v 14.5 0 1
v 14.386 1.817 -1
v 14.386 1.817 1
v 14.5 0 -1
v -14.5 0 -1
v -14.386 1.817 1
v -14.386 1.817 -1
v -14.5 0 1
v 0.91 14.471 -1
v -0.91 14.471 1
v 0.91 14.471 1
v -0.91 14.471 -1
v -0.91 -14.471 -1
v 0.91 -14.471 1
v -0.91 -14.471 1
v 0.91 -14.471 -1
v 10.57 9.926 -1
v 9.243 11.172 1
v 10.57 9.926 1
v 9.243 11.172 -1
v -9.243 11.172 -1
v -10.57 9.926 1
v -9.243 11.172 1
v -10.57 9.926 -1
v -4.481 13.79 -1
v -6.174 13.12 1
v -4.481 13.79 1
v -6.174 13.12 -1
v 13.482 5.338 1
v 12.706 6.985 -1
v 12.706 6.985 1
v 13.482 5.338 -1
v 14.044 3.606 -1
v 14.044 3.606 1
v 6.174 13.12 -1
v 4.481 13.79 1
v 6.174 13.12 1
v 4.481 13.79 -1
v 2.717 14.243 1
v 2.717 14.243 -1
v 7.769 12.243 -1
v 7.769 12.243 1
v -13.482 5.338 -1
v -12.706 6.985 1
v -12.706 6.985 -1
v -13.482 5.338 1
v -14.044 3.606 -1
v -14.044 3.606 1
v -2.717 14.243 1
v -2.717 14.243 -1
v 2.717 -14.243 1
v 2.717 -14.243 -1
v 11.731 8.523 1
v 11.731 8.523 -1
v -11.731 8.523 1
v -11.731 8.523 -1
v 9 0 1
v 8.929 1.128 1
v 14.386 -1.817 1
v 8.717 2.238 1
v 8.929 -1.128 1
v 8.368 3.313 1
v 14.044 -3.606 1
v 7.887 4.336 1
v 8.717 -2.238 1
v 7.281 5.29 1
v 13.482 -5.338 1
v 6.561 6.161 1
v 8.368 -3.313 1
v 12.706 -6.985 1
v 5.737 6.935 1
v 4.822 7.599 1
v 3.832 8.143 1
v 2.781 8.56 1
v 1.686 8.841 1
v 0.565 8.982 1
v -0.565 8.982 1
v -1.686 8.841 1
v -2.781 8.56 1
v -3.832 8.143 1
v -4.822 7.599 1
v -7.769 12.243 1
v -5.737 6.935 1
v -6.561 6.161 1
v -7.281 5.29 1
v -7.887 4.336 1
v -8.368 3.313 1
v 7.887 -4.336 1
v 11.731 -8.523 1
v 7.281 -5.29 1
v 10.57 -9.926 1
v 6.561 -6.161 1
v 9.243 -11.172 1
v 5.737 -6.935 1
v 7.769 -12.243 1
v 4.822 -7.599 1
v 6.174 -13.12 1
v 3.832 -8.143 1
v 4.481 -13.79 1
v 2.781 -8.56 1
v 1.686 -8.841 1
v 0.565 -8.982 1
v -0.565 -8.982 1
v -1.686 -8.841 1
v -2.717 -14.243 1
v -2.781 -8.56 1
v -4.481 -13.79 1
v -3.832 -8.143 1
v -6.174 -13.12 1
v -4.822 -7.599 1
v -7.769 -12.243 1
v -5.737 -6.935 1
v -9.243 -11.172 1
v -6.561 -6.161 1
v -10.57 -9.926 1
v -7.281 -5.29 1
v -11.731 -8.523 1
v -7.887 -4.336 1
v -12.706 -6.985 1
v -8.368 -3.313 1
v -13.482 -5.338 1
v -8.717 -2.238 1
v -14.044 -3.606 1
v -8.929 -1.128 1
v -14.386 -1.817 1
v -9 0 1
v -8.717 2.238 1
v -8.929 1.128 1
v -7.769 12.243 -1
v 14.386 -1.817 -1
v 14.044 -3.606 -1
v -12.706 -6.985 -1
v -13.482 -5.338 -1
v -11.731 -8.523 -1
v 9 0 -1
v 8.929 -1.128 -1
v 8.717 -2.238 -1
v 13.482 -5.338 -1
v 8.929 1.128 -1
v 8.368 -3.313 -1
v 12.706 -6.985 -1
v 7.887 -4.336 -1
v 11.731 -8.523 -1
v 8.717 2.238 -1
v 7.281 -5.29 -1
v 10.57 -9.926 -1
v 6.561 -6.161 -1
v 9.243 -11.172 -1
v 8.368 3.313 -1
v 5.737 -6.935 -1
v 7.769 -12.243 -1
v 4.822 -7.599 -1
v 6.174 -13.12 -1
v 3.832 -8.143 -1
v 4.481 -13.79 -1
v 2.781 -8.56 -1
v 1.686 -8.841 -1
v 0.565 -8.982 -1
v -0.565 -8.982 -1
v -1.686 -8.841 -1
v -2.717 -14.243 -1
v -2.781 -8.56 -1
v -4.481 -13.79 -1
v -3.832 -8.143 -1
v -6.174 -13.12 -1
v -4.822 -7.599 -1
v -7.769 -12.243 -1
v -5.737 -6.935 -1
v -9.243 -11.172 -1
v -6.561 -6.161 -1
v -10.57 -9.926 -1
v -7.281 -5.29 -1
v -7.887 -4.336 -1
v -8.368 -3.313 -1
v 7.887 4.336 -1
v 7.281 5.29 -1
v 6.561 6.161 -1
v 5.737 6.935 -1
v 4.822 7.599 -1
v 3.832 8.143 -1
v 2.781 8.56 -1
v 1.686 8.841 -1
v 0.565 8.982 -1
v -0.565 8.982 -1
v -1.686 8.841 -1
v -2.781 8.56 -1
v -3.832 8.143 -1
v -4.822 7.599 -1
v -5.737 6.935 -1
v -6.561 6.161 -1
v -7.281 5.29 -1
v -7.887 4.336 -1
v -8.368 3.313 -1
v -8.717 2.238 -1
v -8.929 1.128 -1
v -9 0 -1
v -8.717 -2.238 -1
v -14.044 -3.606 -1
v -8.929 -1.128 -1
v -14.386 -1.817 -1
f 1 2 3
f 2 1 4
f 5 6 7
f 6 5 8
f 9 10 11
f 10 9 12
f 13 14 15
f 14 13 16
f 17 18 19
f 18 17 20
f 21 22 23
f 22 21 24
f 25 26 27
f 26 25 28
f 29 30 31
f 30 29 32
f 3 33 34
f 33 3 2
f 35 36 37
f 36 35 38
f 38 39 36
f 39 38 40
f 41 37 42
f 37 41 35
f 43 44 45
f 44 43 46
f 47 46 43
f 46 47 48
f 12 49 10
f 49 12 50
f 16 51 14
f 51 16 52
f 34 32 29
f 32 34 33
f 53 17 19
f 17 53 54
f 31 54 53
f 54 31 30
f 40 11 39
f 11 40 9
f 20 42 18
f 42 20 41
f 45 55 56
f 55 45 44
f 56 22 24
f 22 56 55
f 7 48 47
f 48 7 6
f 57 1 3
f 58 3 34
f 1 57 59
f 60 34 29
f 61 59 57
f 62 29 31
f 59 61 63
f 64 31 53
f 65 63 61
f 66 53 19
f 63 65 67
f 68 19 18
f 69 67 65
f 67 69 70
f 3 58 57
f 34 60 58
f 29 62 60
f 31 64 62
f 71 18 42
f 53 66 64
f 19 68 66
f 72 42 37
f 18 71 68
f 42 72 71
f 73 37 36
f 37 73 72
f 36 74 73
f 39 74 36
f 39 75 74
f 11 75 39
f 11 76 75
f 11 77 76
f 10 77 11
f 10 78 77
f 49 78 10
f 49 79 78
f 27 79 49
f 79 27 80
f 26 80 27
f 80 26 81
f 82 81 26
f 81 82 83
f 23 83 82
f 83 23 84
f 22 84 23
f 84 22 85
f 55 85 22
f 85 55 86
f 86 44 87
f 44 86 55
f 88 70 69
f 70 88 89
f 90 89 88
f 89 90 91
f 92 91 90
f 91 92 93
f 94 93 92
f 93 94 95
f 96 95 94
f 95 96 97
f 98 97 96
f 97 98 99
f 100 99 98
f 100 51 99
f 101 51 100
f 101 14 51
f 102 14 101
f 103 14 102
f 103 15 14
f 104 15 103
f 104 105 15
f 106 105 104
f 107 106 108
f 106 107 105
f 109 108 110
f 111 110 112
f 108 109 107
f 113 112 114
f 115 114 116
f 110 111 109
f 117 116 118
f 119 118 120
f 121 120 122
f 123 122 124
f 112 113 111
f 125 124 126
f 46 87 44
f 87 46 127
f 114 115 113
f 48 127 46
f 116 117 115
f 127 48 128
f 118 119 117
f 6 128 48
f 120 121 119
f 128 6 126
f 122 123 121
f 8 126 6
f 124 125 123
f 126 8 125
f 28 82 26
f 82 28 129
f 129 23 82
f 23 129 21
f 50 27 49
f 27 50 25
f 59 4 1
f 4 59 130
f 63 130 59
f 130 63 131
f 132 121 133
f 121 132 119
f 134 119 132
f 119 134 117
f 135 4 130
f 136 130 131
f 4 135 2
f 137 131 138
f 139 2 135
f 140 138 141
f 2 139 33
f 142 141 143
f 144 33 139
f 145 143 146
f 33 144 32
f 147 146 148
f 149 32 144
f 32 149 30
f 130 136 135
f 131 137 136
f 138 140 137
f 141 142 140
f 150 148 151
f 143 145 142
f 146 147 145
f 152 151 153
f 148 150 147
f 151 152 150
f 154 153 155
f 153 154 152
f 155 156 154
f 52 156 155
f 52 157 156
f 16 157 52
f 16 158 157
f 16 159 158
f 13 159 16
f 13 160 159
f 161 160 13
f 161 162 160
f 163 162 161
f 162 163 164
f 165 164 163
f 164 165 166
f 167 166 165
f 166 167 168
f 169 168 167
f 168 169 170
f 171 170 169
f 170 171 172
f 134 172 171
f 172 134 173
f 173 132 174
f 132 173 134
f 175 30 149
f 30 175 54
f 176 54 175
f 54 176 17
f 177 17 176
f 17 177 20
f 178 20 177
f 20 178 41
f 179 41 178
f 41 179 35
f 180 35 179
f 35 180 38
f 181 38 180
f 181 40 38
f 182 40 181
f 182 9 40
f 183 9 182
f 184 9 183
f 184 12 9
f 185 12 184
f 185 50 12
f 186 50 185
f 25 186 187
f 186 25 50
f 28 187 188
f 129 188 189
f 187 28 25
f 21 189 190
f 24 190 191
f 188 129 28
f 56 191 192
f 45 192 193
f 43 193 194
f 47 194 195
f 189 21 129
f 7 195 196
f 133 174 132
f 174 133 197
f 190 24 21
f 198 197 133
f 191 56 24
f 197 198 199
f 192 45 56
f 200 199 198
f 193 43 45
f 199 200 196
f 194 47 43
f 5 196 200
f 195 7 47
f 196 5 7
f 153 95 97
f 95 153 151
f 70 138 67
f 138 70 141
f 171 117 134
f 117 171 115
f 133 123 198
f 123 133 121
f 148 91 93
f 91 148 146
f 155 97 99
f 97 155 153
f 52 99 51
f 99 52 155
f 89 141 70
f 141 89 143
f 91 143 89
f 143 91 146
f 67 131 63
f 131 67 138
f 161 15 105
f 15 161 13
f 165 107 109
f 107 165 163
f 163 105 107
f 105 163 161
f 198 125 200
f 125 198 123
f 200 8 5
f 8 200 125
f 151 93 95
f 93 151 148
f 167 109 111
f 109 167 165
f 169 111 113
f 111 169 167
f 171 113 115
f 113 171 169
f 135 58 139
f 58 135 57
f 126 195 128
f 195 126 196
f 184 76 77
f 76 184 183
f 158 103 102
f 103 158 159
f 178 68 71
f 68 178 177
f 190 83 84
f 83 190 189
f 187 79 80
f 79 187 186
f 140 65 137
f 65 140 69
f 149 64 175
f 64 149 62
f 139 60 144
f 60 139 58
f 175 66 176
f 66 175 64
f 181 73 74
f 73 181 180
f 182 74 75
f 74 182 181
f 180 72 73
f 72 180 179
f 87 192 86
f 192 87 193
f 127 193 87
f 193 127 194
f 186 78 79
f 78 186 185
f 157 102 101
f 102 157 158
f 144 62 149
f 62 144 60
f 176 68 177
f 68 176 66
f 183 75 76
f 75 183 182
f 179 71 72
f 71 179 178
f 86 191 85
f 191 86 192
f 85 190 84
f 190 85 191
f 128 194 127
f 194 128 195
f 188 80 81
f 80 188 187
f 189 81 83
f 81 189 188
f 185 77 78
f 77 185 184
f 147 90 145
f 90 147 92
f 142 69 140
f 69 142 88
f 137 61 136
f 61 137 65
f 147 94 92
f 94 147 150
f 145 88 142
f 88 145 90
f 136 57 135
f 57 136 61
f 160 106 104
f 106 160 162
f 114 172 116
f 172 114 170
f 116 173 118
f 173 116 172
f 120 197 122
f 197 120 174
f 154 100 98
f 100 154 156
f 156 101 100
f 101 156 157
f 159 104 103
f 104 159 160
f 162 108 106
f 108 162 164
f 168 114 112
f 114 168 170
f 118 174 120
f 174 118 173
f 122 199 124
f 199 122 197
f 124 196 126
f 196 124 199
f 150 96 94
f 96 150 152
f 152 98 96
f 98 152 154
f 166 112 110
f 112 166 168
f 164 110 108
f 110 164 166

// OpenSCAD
$fn = 50;


difference() {
	union() {
		translate(v = [0, 0, -1.0000000000]) {
			cylinder(h = 2, r = 14.5000000000);
		}
	}
	union() {
		translate(v = [0, 0, -100.0000000000]) {
			cylinder(h = 200, r = 9);
		}
	}
}
